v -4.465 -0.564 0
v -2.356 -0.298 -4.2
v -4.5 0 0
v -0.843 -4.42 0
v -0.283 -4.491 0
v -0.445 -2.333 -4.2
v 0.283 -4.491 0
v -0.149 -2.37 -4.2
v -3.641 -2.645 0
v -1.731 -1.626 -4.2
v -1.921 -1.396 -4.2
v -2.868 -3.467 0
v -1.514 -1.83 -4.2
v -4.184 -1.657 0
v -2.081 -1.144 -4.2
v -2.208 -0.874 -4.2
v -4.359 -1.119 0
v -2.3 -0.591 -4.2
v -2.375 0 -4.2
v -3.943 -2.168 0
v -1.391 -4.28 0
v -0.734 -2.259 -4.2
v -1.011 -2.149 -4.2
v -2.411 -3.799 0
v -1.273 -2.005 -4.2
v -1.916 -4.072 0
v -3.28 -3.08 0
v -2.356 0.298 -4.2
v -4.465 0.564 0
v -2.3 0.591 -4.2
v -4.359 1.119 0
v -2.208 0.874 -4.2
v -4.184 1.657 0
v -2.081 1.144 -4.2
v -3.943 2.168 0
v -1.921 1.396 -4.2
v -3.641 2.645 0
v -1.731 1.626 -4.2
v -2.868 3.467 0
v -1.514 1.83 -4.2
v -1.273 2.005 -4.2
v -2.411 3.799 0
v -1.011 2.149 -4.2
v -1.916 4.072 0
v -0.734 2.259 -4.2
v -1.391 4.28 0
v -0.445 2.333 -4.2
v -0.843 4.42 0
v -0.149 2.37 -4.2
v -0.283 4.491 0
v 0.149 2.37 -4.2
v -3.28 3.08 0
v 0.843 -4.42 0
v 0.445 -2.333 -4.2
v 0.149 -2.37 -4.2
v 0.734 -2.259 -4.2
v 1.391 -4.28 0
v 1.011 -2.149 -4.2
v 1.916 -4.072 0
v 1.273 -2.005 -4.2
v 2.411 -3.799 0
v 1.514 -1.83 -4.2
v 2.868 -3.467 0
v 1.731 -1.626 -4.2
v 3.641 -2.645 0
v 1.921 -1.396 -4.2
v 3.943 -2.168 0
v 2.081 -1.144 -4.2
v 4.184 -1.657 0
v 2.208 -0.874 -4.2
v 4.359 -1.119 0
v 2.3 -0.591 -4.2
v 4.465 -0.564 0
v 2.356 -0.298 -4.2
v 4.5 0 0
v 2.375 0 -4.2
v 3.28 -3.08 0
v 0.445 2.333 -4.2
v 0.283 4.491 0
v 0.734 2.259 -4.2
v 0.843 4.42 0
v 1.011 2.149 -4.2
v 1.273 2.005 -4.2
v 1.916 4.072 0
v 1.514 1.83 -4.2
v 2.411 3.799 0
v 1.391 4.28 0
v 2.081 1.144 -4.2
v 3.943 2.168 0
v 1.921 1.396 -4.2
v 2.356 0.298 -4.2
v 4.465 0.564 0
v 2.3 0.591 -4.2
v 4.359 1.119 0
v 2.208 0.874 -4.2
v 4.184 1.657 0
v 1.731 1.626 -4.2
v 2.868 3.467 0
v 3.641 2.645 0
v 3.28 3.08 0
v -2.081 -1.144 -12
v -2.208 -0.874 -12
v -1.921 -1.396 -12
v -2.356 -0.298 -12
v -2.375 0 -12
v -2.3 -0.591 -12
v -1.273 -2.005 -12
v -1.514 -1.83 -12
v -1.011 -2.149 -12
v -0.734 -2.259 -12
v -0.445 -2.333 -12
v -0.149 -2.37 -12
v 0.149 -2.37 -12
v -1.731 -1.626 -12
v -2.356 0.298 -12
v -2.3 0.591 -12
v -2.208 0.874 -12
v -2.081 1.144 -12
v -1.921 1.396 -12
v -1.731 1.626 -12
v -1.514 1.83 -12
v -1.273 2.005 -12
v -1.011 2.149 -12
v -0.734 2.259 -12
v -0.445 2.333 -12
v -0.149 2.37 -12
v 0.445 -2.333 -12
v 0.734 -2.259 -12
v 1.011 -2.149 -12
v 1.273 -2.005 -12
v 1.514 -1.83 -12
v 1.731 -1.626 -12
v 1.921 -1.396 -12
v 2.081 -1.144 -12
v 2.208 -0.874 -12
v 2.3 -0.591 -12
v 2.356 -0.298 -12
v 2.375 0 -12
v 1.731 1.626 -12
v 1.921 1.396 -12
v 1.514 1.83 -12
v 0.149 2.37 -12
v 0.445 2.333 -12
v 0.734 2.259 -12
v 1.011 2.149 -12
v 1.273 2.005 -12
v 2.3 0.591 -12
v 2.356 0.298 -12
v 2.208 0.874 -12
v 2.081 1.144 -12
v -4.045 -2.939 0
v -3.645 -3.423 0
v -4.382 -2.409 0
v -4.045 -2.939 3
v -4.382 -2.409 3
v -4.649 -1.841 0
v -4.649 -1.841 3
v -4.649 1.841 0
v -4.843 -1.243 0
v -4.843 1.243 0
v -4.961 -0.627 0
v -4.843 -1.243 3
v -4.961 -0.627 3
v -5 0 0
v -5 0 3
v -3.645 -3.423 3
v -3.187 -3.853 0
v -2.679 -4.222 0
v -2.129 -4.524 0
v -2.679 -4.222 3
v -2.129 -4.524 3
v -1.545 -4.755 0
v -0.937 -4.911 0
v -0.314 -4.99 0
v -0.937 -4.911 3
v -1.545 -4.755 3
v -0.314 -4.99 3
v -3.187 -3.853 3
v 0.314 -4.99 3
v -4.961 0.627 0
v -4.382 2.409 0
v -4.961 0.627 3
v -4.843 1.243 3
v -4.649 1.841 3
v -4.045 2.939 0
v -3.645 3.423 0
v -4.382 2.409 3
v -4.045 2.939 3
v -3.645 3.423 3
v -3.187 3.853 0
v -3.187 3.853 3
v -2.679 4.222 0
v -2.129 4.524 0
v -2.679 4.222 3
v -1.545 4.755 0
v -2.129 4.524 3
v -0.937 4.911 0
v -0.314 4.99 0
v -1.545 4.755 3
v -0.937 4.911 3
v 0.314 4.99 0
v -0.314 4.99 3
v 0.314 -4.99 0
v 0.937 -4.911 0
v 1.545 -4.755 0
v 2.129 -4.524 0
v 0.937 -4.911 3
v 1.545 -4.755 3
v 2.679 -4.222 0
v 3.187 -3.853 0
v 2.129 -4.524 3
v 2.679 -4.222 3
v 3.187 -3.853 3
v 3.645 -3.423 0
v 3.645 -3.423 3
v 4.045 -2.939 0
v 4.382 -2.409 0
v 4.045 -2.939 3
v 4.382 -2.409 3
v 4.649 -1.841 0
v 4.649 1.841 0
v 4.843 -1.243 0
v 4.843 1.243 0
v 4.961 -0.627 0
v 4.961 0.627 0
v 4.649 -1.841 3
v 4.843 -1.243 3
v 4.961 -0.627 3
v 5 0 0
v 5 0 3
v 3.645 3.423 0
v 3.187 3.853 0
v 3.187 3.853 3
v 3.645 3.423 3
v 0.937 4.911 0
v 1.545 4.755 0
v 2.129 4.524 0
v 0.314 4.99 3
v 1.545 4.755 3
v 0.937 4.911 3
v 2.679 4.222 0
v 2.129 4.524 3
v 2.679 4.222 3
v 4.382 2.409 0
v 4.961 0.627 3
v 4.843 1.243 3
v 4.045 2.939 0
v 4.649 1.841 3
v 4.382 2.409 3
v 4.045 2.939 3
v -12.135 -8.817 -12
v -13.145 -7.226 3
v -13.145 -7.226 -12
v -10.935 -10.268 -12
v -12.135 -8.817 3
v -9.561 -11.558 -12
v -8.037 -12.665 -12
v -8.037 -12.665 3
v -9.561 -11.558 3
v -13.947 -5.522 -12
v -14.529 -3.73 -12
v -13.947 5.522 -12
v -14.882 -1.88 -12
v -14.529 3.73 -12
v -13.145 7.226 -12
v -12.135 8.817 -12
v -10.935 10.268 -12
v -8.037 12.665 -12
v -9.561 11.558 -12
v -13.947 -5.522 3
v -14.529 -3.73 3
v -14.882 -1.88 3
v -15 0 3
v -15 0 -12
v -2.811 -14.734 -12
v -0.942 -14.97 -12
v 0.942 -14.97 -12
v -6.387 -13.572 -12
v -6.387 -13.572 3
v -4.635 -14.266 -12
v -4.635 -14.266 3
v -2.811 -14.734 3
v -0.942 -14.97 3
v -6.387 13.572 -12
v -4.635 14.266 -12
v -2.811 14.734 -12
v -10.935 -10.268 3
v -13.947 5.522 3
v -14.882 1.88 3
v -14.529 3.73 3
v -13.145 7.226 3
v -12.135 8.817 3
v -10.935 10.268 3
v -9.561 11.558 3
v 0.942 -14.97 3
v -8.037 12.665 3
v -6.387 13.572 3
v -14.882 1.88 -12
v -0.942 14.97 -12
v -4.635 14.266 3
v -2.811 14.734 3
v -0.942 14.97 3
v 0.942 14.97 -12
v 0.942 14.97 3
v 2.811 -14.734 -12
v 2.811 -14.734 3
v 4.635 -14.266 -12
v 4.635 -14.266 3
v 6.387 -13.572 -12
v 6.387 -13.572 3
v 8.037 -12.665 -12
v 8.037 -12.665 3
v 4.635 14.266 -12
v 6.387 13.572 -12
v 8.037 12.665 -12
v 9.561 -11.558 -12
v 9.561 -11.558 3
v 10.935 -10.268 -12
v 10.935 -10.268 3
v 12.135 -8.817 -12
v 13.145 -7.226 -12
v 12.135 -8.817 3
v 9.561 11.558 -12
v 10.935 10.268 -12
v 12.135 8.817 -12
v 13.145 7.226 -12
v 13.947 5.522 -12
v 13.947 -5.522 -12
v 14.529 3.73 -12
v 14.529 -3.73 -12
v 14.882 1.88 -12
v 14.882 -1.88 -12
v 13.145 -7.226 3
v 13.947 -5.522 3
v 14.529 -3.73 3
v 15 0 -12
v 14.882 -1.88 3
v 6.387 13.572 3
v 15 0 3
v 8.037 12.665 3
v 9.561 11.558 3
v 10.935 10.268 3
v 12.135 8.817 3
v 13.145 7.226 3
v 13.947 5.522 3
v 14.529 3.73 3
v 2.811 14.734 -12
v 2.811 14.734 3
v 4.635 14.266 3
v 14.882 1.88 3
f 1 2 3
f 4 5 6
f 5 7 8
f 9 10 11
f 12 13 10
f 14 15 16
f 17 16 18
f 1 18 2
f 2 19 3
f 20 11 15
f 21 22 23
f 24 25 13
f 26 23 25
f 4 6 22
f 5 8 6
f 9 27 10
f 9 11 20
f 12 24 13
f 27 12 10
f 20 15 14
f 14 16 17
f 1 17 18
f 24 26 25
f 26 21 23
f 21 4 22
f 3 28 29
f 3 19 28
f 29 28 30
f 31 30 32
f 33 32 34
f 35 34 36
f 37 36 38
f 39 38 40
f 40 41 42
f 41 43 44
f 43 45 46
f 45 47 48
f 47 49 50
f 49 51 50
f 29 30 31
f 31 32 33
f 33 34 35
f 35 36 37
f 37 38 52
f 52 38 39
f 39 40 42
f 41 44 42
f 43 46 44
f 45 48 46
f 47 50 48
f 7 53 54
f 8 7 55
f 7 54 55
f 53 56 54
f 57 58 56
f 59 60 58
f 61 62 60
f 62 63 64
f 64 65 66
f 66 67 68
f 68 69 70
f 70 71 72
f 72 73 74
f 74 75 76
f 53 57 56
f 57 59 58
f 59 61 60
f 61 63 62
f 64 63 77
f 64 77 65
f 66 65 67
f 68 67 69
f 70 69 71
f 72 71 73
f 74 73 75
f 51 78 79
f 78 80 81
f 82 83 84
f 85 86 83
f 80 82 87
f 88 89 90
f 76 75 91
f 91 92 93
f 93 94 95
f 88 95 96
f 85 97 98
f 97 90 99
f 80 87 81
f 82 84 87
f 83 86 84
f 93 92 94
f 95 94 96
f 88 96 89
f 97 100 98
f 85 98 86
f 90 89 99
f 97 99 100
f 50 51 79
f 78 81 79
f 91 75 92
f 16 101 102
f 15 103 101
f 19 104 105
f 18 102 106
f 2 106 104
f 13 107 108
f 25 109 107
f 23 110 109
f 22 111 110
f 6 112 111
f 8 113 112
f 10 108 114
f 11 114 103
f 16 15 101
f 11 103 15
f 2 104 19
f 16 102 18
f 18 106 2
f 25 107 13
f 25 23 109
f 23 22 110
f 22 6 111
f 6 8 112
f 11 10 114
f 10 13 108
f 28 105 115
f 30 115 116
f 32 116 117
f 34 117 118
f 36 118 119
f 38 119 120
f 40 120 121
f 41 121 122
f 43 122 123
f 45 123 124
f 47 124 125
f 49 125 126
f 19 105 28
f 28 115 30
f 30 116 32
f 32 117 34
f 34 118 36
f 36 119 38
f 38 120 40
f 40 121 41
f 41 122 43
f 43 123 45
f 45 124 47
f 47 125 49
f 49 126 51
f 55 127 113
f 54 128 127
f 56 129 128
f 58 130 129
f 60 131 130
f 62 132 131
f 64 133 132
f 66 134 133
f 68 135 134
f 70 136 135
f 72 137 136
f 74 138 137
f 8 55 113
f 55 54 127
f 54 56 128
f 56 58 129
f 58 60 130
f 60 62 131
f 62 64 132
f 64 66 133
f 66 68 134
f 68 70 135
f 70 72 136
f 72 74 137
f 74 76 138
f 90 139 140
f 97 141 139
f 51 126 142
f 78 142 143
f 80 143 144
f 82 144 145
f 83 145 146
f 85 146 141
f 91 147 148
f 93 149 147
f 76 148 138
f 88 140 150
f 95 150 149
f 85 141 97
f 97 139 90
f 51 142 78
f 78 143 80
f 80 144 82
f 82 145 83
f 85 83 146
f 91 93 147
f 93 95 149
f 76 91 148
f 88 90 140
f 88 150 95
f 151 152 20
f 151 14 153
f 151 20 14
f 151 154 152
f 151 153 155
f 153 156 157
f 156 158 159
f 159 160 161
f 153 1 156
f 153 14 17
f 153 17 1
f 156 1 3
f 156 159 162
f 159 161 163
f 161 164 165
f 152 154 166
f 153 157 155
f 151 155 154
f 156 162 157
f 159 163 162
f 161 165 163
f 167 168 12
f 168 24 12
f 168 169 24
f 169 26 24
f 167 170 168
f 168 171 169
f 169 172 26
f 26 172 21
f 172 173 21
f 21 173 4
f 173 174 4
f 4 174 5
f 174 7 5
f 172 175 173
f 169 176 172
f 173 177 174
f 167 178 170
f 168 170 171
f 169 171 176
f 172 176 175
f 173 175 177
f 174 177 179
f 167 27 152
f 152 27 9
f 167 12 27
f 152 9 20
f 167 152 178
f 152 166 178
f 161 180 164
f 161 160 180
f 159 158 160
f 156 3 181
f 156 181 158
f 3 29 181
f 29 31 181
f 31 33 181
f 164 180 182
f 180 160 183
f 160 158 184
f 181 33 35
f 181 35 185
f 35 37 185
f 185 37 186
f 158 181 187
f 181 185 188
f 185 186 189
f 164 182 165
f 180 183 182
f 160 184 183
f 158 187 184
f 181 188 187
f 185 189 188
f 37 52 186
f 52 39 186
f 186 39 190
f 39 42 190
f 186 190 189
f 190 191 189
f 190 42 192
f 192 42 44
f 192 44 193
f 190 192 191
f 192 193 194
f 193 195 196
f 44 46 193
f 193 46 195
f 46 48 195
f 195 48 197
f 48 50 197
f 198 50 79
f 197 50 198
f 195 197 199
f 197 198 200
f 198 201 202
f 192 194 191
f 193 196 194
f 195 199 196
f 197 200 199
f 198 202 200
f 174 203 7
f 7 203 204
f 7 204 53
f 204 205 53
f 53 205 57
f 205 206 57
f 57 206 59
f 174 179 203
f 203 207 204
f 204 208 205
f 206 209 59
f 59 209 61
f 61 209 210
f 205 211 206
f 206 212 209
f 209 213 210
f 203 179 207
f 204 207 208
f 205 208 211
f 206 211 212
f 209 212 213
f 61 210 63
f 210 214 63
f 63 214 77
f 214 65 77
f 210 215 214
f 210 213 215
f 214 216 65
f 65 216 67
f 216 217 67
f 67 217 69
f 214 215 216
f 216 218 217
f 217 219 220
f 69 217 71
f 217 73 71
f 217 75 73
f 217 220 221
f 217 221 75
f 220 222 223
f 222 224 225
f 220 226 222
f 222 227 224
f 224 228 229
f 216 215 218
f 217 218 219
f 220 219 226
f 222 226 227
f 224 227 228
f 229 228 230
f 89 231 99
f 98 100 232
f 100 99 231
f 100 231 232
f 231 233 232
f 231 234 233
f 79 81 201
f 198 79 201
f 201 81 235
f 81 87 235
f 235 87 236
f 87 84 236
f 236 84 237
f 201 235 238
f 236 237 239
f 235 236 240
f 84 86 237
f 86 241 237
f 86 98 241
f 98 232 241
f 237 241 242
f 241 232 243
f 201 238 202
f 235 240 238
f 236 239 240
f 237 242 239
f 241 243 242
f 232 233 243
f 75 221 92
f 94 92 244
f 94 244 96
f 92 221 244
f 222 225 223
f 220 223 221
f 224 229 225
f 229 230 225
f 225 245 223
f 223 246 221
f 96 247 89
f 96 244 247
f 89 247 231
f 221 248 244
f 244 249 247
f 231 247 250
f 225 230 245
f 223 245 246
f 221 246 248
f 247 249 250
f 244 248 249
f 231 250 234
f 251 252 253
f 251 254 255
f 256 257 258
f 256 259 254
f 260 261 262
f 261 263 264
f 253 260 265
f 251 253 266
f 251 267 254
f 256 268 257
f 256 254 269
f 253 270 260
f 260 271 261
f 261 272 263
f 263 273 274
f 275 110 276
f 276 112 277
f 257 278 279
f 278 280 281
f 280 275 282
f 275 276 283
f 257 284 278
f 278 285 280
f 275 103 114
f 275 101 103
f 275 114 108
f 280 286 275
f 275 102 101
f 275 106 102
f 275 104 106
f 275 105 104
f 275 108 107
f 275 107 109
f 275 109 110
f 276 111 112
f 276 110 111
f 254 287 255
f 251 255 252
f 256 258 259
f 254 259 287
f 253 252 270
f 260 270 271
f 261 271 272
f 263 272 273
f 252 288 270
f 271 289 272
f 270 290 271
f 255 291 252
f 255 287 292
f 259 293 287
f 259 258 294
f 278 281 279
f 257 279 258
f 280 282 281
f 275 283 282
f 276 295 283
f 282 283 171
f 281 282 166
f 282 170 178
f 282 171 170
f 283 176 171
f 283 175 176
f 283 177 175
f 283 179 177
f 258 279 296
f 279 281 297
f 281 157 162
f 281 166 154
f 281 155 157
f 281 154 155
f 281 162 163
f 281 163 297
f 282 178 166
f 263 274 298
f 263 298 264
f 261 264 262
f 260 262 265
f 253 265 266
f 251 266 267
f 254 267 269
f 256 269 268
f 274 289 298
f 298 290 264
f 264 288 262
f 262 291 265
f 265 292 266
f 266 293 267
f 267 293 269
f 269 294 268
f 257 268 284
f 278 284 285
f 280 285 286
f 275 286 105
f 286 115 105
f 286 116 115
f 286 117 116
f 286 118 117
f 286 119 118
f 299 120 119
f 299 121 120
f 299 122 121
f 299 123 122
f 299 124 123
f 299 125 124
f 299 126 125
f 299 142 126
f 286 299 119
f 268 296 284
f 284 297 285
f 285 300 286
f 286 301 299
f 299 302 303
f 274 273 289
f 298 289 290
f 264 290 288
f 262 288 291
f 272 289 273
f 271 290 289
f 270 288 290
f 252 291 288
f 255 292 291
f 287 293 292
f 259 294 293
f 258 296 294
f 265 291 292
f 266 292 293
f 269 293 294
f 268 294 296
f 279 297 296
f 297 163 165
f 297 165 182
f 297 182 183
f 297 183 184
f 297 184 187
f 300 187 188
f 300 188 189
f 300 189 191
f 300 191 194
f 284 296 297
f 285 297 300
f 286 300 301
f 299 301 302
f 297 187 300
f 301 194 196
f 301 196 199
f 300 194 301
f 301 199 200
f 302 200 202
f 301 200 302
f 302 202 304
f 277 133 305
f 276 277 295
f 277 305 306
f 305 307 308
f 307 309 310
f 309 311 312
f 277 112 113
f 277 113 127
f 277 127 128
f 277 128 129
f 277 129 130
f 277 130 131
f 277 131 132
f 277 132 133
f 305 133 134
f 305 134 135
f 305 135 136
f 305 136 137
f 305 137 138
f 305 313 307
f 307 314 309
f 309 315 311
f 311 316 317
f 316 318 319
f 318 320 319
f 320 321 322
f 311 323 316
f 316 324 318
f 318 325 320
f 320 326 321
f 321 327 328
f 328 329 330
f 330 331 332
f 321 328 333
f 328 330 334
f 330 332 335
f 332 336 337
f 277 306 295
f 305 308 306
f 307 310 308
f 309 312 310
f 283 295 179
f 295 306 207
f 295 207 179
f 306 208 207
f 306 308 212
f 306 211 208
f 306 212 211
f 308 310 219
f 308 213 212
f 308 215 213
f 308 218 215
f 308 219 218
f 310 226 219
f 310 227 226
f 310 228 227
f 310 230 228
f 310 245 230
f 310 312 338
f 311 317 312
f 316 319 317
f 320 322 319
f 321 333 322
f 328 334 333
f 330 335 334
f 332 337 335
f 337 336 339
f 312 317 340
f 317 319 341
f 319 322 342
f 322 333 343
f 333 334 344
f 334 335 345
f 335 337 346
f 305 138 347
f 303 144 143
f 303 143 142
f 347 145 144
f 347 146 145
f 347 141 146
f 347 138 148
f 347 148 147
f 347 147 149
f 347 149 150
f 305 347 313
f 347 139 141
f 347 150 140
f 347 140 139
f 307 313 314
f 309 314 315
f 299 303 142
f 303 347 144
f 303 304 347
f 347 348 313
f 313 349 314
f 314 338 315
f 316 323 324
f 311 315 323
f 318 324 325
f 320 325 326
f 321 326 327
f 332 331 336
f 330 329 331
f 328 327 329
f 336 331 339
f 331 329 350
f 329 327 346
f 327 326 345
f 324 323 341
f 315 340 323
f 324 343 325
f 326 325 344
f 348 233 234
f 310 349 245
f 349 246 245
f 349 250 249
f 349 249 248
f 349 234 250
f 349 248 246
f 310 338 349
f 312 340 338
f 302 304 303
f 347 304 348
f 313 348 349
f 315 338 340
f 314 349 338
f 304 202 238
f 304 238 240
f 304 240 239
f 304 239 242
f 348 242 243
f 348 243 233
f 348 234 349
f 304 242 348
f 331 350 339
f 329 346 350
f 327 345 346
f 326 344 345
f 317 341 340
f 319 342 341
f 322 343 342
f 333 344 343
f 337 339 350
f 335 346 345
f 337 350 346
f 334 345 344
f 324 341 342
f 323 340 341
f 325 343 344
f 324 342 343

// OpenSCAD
$fn = 50;

difference() {
	union() {
		translate(v = [0, 0, -12.0]) {
			cylinder(h = 15, r = 15.0);
		}
	}
	union() {
		translate(v = [0, 0, 0]) {
			rotate(a = [0, 0, 0]) {
				difference() {
					union() {
						translate(v = [0, 0, -15.0]) {
							cylinder(h = 15, r = 2.25);
						}
						translate(v = [0, 0, -4.2]) {
							cylinder(h = 4.2, r1 = 2.375, r2 = 4.5);
						}
						translate(v = [0, 0, -15.0]) {
							cylinder(h = 15, r = 2.375);
						}
						translate(v = [0, 0, -15.0]) {
							cylinder(h = 15, r = 2.25);
						}
					}
					union();
				}
			}
		}
		#cylinder(h = 3, r = 5.0);
	}
}
